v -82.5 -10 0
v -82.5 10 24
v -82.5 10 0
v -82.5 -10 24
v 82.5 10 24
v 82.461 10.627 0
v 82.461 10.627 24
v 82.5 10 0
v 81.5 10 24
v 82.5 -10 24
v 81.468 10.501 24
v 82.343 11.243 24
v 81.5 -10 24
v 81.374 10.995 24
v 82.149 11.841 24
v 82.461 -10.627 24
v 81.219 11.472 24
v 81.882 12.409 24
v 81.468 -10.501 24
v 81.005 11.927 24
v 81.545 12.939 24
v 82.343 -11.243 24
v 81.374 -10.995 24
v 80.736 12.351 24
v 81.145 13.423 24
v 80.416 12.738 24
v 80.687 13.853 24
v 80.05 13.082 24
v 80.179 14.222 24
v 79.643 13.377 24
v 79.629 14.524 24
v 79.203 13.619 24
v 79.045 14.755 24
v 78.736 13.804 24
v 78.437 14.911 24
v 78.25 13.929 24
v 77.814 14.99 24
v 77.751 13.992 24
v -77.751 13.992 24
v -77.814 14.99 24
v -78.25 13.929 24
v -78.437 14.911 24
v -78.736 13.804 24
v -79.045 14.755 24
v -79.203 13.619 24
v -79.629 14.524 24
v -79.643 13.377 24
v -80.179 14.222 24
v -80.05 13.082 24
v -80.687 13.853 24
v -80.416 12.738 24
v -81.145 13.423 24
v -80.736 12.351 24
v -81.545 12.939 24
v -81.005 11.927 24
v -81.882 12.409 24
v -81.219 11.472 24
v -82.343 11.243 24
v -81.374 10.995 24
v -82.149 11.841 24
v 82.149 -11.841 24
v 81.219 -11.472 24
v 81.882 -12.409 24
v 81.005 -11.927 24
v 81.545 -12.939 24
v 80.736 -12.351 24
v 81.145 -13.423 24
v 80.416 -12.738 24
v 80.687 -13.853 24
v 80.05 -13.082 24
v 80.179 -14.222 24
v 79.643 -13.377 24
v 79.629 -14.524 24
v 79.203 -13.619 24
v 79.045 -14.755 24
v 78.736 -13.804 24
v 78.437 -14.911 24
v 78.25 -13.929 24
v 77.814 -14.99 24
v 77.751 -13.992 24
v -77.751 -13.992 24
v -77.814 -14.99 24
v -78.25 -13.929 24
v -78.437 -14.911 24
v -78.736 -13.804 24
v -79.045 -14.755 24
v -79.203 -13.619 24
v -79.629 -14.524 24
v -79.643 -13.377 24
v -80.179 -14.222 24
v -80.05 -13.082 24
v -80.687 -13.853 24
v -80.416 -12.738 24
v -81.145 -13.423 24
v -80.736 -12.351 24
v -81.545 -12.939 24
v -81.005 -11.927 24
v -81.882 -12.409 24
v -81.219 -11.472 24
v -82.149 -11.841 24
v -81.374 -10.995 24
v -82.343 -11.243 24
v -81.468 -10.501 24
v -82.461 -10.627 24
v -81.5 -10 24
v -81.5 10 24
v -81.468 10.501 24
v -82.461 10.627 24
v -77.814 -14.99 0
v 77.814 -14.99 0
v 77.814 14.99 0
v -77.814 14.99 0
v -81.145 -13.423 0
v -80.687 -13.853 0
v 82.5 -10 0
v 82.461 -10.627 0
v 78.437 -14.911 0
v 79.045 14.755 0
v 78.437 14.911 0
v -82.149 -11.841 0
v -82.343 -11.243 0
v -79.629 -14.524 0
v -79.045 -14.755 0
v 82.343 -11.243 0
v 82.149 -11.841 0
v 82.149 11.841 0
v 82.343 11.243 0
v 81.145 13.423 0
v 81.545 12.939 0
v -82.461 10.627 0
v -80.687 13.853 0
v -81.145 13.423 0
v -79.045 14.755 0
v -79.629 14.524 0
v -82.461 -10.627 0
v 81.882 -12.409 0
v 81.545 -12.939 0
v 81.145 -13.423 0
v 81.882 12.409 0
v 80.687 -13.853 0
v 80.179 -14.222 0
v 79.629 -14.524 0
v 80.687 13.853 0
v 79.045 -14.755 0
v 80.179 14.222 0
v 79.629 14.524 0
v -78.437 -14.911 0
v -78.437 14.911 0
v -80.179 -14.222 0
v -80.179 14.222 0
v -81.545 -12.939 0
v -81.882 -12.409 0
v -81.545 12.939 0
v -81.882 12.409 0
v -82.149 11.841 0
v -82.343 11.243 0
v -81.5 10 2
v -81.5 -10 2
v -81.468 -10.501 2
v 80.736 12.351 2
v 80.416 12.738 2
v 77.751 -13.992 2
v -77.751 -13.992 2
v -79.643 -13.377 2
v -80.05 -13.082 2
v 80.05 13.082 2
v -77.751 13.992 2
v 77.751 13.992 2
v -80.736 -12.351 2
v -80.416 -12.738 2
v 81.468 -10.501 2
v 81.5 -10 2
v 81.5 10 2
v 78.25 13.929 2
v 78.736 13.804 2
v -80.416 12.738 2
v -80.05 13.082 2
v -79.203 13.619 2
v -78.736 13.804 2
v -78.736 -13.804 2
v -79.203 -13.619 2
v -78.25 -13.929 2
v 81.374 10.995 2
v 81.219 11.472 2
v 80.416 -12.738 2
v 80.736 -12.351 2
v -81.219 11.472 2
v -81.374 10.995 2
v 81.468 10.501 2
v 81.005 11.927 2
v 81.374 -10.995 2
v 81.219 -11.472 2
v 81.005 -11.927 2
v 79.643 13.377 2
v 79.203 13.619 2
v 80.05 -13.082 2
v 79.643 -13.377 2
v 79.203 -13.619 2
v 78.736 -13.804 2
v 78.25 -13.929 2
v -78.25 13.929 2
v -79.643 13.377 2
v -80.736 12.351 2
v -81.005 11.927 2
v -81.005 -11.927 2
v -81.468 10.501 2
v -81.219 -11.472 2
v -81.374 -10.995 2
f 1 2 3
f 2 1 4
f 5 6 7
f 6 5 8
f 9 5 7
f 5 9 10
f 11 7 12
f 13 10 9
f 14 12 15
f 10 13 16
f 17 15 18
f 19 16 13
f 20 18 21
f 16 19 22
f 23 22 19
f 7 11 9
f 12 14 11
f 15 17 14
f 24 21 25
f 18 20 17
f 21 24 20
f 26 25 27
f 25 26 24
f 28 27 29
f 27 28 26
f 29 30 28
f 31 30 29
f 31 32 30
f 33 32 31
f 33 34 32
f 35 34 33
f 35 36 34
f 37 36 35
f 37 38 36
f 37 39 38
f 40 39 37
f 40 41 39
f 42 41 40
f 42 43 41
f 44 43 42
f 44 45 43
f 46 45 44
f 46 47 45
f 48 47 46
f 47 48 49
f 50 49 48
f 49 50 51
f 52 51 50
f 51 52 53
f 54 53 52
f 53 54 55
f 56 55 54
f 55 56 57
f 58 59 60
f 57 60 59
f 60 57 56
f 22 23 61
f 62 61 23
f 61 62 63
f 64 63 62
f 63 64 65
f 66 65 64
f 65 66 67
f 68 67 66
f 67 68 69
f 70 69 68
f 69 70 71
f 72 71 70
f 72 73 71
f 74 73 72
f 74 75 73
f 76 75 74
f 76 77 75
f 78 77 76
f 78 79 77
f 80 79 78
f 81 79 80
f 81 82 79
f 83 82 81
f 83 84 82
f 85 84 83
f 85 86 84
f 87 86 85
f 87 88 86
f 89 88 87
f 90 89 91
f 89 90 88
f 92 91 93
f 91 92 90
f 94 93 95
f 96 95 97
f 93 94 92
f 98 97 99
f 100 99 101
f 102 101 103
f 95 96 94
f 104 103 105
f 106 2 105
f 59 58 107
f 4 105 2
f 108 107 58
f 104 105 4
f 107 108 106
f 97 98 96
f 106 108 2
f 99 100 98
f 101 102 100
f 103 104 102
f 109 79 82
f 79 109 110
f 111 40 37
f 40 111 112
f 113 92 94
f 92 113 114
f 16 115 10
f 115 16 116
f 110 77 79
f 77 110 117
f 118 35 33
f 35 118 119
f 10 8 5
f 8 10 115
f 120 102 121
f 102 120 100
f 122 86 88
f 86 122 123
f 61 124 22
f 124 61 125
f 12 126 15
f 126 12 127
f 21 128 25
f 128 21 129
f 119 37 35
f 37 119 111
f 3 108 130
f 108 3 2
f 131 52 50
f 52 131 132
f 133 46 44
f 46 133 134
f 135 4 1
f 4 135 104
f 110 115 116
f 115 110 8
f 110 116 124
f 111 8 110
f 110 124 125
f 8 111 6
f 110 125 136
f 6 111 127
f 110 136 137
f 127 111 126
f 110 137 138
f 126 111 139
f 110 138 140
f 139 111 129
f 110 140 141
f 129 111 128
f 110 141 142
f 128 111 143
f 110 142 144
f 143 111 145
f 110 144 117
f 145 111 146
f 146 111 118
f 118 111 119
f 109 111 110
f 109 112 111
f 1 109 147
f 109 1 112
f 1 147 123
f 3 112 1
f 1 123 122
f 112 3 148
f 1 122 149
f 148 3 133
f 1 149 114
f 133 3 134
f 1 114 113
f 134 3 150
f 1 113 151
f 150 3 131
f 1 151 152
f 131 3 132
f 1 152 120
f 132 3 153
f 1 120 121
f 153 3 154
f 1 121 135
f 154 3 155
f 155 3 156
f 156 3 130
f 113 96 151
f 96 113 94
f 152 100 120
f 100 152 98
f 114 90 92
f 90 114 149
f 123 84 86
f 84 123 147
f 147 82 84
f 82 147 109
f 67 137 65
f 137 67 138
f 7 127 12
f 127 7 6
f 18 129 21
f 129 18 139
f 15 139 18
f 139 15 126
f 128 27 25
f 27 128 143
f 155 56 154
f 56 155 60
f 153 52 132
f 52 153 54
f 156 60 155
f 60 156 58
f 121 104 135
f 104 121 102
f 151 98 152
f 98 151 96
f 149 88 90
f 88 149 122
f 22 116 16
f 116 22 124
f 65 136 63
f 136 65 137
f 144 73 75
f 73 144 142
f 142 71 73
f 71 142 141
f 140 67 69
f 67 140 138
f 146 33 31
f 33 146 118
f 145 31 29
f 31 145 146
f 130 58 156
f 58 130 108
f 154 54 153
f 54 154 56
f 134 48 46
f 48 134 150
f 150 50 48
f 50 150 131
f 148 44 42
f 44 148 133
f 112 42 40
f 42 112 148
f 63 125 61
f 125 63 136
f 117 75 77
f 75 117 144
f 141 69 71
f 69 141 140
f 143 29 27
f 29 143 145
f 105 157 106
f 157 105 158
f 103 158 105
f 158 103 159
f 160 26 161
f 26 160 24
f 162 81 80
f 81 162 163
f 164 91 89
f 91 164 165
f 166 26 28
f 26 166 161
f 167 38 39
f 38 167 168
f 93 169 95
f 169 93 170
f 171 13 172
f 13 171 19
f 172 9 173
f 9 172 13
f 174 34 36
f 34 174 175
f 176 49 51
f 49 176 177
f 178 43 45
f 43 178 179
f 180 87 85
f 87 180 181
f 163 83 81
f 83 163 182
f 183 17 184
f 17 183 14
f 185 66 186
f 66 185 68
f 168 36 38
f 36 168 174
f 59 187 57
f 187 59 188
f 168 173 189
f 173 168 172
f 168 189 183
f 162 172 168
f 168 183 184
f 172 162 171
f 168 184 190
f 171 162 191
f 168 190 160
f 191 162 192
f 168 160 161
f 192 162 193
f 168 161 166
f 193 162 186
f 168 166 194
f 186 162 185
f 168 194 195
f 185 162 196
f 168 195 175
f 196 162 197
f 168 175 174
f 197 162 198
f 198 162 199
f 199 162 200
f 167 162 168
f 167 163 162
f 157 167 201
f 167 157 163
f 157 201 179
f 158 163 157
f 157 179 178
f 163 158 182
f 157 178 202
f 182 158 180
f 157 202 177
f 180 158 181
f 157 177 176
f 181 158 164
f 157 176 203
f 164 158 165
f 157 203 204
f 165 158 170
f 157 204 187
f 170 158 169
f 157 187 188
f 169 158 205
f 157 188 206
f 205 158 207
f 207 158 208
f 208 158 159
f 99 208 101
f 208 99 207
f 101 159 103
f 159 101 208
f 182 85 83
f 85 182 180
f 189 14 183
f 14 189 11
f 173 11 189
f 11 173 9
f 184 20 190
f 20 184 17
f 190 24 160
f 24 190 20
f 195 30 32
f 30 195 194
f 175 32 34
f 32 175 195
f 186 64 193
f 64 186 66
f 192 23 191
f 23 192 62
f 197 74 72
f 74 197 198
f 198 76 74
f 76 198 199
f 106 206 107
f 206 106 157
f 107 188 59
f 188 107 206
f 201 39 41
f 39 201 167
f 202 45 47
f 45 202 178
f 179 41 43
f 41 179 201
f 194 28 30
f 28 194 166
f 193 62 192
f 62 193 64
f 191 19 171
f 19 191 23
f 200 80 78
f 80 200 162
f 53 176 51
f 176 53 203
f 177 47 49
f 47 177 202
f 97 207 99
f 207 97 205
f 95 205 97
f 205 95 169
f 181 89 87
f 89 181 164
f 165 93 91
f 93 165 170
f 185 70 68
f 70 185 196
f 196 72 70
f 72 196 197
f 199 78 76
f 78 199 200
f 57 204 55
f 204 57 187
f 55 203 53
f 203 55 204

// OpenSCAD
$fn = 50;


difference() {
	union() {
		hull() {
			translate(v = [-77.5000000000, 10.0000000000, 0]) {
				cylinder(h = 24, r = 5);
			}
			translate(v = [77.5000000000, 10.0000000000, 0]) {
				cylinder(h = 24, r = 5);
			}
			translate(v = [-77.5000000000, -10.0000000000, 0]) {
				cylinder(h = 24, r = 5);
			}
			translate(v = [77.5000000000, -10.0000000000, 0]) {
				cylinder(h = 24, r = 5);
			}
		}
	}
	union() {
		translate(v = [0, 0, 2]) {
			hull() {
				translate(v = [-77.5000000000, 10.0000000000, 0]) {
					cylinder(h = 22, r = 4);
				}
				translate(v = [77.5000000000, 10.0000000000, 0]) {
					cylinder(h = 22, r = 4);
				}
				translate(v = [-77.5000000000, -10.0000000000, 0]) {
					cylinder(h = 22, r = 4);
				}
				translate(v = [77.5000000000, -10.0000000000, 0]) {
					cylinder(h = 22, r = 4);
				}
			}
		}
	}
}
